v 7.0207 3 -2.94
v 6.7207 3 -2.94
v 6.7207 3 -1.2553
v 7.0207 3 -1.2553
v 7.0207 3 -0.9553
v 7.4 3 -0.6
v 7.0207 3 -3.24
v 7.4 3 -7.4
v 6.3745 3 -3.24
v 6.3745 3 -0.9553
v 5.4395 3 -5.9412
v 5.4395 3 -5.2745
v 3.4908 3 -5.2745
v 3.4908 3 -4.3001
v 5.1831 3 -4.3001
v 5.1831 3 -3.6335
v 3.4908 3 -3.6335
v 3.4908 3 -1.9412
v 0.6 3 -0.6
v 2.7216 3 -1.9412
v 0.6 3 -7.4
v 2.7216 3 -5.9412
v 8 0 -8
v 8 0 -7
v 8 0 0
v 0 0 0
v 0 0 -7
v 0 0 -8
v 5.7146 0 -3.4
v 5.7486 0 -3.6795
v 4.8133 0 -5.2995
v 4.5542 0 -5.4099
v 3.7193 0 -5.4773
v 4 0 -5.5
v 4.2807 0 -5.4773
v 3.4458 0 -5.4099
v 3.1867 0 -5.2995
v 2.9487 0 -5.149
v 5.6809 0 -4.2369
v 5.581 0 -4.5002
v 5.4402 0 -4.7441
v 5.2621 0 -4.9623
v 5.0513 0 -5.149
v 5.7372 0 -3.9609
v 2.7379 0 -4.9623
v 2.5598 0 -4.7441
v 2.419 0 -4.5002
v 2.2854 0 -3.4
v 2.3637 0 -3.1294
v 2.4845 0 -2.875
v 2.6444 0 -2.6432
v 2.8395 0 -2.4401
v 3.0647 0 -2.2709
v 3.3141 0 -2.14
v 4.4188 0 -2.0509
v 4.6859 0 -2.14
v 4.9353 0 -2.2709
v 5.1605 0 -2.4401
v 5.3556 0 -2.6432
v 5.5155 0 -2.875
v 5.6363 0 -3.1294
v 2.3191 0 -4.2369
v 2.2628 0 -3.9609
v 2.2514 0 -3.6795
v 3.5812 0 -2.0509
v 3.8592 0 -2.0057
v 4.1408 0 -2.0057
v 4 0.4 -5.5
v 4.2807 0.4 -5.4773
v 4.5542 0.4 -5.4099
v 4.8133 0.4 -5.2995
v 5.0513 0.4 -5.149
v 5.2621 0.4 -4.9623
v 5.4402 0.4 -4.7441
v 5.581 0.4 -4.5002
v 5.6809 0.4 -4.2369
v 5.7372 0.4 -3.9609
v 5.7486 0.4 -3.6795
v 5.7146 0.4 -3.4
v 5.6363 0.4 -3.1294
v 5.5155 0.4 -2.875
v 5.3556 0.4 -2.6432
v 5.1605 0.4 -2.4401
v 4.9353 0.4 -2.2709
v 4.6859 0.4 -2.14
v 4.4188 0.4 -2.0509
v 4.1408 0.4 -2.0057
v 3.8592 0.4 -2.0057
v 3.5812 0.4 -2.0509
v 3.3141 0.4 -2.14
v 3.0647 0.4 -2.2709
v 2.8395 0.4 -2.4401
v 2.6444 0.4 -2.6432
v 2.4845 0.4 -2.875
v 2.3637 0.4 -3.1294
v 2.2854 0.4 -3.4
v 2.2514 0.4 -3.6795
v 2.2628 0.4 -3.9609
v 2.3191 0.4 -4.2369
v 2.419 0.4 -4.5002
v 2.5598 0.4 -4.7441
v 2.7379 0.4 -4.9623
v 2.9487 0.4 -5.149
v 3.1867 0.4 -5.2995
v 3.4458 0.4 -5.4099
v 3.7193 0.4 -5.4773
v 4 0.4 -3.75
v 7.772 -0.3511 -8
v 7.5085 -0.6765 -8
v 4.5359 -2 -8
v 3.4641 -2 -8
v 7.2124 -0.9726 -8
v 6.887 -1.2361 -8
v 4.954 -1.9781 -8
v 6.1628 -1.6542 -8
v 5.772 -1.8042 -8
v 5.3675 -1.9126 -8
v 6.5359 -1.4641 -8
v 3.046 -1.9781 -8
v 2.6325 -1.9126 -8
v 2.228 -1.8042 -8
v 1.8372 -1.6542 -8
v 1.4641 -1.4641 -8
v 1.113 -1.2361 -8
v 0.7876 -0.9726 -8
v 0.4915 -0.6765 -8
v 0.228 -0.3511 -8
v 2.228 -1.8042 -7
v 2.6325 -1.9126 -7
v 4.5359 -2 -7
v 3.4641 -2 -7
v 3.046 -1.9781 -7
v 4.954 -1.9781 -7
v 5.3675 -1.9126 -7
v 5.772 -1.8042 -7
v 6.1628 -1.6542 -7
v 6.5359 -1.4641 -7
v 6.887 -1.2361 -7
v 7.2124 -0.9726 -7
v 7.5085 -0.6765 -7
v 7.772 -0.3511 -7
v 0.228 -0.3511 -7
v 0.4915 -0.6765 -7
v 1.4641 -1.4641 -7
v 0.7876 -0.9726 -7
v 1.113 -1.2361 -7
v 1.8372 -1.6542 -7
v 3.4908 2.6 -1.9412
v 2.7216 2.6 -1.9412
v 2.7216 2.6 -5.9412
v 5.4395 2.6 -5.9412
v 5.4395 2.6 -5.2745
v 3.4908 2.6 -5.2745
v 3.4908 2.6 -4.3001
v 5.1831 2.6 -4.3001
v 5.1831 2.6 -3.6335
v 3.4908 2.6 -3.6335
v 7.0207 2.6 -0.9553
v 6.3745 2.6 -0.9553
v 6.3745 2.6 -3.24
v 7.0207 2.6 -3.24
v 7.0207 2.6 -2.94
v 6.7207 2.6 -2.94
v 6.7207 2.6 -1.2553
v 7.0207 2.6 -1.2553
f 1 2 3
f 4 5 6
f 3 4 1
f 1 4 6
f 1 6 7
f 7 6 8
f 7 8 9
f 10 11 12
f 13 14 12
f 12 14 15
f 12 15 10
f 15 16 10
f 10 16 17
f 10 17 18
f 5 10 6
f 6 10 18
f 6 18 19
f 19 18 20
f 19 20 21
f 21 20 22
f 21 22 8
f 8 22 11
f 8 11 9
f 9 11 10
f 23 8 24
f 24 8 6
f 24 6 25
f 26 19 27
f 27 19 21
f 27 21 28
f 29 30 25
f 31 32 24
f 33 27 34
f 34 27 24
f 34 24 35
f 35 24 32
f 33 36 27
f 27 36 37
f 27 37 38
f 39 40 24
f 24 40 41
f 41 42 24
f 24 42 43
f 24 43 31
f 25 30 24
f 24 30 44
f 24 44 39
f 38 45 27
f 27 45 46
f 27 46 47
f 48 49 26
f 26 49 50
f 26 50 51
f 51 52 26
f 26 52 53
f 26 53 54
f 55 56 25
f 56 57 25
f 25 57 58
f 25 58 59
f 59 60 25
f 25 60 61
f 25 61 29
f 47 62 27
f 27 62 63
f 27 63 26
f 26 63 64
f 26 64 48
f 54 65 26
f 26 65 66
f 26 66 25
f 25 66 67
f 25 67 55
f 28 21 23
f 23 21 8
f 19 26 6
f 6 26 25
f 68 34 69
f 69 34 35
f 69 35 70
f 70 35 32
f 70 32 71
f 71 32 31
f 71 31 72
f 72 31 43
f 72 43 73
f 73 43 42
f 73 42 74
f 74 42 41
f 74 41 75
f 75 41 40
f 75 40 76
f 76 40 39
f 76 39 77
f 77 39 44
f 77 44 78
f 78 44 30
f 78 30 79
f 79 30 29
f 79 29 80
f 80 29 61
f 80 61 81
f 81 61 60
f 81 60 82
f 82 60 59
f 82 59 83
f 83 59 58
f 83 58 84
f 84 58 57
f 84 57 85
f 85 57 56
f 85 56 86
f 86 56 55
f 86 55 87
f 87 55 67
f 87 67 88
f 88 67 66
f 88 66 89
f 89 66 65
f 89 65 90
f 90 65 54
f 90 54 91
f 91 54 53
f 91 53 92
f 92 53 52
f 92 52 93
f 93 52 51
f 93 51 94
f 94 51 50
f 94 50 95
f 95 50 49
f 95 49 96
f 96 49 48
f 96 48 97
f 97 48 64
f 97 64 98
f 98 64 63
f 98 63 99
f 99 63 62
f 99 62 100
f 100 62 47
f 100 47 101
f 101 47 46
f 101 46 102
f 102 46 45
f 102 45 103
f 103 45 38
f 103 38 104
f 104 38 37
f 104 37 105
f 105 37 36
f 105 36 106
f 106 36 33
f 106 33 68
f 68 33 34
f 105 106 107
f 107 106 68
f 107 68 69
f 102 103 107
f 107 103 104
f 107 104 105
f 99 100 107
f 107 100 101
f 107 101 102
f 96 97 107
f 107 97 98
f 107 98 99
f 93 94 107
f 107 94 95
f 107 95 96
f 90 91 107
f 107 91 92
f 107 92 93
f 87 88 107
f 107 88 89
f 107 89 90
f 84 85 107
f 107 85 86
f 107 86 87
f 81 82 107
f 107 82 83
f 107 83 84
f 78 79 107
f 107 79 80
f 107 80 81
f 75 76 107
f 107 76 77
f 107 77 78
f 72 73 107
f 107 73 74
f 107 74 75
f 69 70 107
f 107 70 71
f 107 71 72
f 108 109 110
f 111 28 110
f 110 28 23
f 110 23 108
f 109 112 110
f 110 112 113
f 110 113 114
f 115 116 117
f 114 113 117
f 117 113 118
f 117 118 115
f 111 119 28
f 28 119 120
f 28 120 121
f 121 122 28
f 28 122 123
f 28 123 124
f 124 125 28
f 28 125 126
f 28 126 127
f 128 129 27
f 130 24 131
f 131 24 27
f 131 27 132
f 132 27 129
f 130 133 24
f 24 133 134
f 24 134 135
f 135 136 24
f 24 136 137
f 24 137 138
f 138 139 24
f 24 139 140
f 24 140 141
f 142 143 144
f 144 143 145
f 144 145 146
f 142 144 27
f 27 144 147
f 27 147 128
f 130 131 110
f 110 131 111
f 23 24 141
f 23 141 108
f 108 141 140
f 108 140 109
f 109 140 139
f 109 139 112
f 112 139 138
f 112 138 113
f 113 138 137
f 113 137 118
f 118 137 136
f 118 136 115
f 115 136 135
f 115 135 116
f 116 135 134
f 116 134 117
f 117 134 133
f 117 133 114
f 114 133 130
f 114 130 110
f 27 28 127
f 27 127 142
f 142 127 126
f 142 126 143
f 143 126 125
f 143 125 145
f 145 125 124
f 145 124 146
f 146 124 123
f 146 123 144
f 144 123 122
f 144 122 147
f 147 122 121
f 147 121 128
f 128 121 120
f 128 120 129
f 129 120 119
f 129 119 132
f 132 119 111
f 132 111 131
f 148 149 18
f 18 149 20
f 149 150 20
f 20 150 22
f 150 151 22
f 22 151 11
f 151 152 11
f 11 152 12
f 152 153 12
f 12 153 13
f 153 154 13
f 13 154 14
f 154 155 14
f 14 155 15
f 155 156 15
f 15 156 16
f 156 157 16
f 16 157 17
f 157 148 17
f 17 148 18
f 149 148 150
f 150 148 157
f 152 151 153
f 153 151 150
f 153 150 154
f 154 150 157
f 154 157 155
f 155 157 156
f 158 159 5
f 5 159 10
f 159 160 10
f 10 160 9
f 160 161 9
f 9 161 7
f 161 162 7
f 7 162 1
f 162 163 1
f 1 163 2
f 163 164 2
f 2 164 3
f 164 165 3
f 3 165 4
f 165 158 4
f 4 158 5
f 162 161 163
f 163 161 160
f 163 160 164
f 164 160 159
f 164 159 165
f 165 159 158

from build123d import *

# Parameters (mm, degrees)
SKETCH1_W               = 8
SKETCH1_H               = 8
BOSS_EXTRUDE1_DEPTH     = 3
CUT_EXTRUDE1_DEPTH      = 12.704699911
CUT_EXTRUDE1_DEPTH_BACK = 12.704699911
CUT_EXTRUDE2_DEPTH      = 11
SKETCH4_R               = 1.75
CUT_EXTRUDE3_DEPTH      = 0.4
SKETCH5_W               = 8
SKETCH5_H               = 1
BOSS_EXTRUDE2_DEPTH     = 2
FILLET1_R               = 4
CUT_EXTRUDE4_DEPTH      = 0.4
CUT_EXTRUDE5_DEPTH      = 0.4


with BuildPart() as part:
    # Sketch1 → Boss-Extrude1 (new body)
    with BuildSketch(Plane(origin=(0, 0, 0), x_dir=(1, 0, 0), z_dir=(0, 1, 0))):
        with Locations((4, 4)):
            Rectangle(SKETCH1_W, SKETCH1_H)
    extrude(amount=BOSS_EXTRUDE1_DEPTH)

    # Sketch2 → Cut-Extrude1 (cut, two sides: drawn at the far end of the back side and taken through both)
    with BuildSketch(Plane.XY.offset(-CUT_EXTRUDE1_DEPTH_BACK)):
        Polygon((0, 0), (0.6, 3), (0, 3), align=None)
        Polygon((8, 0), (7.4, 3), (8, 3), align=None)
    extrude(amount=CUT_EXTRUDE1_DEPTH + CUT_EXTRUDE1_DEPTH_BACK, mode=Mode.SUBTRACT)

    # Sketch3 → Cut-Extrude2 (cut)
    with BuildSketch(Plane(origin=(0, 0, 0), x_dir=(0, 0, -1), z_dir=(1, 0, 0))):
        Polygon((0, 0), (0.6, 3), (0, 3), align=None)
        Polygon((8, 3), (7.4, 3), (8, 0), align=None)
    extrude(amount=CUT_EXTRUDE2_DEPTH, mode=Mode.SUBTRACT)

    # Sketch4 → Cut-Extrude3 (cut)
    with BuildSketch(Plane.XZ):
        with Locations(Location((4, -3.75, 0), (0, 0, 270))):
            Circle(SKETCH4_R)
    extrude(amount=-CUT_EXTRUDE3_DEPTH, mode=Mode.SUBTRACT)

    # Sketch5 → Boss-Extrude2 (add)
    with BuildSketch(Plane.XZ):
        with Locations((4, -7.5)):
            Rectangle(SKETCH5_W, SKETCH5_H)
    extrude(amount=BOSS_EXTRUDE2_DEPTH)

    # Fillet1
    # the kernel refuses this fillet: 4 mm, written as the material it takes off along each edge
    with BuildSketch(Plane(origin=(8, -2, -16.660254038), x_dir=(0, 1, 0), z_dir=(0, 0, 1)), Plane(origin=(0, -2, 1.660254038), x_dir=(0, 1, 0), z_dir=(0, 0, -1))) as fillet1_piece_1:
        with BuildLine():
            CenterArc((4, 3.464101615), FILLET1_R, 180, 60)
            Line((0, 3.464101615), (-0.08, 3.464101615))
            Line((-0.08, 3.464101615), (-0.08, 0))
            Line((-0.08, 0), (0, -0.08))
            ThreePointArc((0, -0.08), (1, -0.08), (1.96, -0.069282032))
            Line((1.96, -0.069282032), (2, 0))
        make_face()
    extrude(amount=18.320508076, mode=Mode.SUBTRACT)

    # Sketch6 → Cut-Extrude4 (cut)
    with BuildSketch(Plane(origin=(0, 3, 0), x_dir=(1, 0, 0), z_dir=(0, 1, 0))):
        Polygon((2.721575188, 1.941169366), (2.721575188, 5.941169366), (5.439523906, 5.941169366), (5.439523906, 5.2745027), (3.490805957, 5.2745027), (3.490805957, 4.300143725), (5.18311365, 4.300143725), (5.18311365, 3.633477059), (3.490805957, 3.633477059), (3.490805957, 1.941169366), align=None)
    extrude(amount=-CUT_EXTRUDE4_DEPTH, mode=Mode.SUBTRACT)

    # Sketch7 → Cut-Extrude5 (cut)
    with BuildSketch(Plane(origin=(0, 3, 0), x_dir=(1, 0, 0), z_dir=(0, 1, 0))):
        Polygon((6.374503362, 0.955347226), (6.374503362, 3.239962611), (7.020657208, 3.239962611), (7.020657208, 2.939962611), (6.720657208, 2.939962611), (6.720657208, 1.255347226), (7.020657208, 1.255347226), (7.020657208, 0.955347226), align=None)
    extrude(amount=-CUT_EXTRUDE5_DEPTH, mode=Mode.SUBTRACT)


solid = part.part
